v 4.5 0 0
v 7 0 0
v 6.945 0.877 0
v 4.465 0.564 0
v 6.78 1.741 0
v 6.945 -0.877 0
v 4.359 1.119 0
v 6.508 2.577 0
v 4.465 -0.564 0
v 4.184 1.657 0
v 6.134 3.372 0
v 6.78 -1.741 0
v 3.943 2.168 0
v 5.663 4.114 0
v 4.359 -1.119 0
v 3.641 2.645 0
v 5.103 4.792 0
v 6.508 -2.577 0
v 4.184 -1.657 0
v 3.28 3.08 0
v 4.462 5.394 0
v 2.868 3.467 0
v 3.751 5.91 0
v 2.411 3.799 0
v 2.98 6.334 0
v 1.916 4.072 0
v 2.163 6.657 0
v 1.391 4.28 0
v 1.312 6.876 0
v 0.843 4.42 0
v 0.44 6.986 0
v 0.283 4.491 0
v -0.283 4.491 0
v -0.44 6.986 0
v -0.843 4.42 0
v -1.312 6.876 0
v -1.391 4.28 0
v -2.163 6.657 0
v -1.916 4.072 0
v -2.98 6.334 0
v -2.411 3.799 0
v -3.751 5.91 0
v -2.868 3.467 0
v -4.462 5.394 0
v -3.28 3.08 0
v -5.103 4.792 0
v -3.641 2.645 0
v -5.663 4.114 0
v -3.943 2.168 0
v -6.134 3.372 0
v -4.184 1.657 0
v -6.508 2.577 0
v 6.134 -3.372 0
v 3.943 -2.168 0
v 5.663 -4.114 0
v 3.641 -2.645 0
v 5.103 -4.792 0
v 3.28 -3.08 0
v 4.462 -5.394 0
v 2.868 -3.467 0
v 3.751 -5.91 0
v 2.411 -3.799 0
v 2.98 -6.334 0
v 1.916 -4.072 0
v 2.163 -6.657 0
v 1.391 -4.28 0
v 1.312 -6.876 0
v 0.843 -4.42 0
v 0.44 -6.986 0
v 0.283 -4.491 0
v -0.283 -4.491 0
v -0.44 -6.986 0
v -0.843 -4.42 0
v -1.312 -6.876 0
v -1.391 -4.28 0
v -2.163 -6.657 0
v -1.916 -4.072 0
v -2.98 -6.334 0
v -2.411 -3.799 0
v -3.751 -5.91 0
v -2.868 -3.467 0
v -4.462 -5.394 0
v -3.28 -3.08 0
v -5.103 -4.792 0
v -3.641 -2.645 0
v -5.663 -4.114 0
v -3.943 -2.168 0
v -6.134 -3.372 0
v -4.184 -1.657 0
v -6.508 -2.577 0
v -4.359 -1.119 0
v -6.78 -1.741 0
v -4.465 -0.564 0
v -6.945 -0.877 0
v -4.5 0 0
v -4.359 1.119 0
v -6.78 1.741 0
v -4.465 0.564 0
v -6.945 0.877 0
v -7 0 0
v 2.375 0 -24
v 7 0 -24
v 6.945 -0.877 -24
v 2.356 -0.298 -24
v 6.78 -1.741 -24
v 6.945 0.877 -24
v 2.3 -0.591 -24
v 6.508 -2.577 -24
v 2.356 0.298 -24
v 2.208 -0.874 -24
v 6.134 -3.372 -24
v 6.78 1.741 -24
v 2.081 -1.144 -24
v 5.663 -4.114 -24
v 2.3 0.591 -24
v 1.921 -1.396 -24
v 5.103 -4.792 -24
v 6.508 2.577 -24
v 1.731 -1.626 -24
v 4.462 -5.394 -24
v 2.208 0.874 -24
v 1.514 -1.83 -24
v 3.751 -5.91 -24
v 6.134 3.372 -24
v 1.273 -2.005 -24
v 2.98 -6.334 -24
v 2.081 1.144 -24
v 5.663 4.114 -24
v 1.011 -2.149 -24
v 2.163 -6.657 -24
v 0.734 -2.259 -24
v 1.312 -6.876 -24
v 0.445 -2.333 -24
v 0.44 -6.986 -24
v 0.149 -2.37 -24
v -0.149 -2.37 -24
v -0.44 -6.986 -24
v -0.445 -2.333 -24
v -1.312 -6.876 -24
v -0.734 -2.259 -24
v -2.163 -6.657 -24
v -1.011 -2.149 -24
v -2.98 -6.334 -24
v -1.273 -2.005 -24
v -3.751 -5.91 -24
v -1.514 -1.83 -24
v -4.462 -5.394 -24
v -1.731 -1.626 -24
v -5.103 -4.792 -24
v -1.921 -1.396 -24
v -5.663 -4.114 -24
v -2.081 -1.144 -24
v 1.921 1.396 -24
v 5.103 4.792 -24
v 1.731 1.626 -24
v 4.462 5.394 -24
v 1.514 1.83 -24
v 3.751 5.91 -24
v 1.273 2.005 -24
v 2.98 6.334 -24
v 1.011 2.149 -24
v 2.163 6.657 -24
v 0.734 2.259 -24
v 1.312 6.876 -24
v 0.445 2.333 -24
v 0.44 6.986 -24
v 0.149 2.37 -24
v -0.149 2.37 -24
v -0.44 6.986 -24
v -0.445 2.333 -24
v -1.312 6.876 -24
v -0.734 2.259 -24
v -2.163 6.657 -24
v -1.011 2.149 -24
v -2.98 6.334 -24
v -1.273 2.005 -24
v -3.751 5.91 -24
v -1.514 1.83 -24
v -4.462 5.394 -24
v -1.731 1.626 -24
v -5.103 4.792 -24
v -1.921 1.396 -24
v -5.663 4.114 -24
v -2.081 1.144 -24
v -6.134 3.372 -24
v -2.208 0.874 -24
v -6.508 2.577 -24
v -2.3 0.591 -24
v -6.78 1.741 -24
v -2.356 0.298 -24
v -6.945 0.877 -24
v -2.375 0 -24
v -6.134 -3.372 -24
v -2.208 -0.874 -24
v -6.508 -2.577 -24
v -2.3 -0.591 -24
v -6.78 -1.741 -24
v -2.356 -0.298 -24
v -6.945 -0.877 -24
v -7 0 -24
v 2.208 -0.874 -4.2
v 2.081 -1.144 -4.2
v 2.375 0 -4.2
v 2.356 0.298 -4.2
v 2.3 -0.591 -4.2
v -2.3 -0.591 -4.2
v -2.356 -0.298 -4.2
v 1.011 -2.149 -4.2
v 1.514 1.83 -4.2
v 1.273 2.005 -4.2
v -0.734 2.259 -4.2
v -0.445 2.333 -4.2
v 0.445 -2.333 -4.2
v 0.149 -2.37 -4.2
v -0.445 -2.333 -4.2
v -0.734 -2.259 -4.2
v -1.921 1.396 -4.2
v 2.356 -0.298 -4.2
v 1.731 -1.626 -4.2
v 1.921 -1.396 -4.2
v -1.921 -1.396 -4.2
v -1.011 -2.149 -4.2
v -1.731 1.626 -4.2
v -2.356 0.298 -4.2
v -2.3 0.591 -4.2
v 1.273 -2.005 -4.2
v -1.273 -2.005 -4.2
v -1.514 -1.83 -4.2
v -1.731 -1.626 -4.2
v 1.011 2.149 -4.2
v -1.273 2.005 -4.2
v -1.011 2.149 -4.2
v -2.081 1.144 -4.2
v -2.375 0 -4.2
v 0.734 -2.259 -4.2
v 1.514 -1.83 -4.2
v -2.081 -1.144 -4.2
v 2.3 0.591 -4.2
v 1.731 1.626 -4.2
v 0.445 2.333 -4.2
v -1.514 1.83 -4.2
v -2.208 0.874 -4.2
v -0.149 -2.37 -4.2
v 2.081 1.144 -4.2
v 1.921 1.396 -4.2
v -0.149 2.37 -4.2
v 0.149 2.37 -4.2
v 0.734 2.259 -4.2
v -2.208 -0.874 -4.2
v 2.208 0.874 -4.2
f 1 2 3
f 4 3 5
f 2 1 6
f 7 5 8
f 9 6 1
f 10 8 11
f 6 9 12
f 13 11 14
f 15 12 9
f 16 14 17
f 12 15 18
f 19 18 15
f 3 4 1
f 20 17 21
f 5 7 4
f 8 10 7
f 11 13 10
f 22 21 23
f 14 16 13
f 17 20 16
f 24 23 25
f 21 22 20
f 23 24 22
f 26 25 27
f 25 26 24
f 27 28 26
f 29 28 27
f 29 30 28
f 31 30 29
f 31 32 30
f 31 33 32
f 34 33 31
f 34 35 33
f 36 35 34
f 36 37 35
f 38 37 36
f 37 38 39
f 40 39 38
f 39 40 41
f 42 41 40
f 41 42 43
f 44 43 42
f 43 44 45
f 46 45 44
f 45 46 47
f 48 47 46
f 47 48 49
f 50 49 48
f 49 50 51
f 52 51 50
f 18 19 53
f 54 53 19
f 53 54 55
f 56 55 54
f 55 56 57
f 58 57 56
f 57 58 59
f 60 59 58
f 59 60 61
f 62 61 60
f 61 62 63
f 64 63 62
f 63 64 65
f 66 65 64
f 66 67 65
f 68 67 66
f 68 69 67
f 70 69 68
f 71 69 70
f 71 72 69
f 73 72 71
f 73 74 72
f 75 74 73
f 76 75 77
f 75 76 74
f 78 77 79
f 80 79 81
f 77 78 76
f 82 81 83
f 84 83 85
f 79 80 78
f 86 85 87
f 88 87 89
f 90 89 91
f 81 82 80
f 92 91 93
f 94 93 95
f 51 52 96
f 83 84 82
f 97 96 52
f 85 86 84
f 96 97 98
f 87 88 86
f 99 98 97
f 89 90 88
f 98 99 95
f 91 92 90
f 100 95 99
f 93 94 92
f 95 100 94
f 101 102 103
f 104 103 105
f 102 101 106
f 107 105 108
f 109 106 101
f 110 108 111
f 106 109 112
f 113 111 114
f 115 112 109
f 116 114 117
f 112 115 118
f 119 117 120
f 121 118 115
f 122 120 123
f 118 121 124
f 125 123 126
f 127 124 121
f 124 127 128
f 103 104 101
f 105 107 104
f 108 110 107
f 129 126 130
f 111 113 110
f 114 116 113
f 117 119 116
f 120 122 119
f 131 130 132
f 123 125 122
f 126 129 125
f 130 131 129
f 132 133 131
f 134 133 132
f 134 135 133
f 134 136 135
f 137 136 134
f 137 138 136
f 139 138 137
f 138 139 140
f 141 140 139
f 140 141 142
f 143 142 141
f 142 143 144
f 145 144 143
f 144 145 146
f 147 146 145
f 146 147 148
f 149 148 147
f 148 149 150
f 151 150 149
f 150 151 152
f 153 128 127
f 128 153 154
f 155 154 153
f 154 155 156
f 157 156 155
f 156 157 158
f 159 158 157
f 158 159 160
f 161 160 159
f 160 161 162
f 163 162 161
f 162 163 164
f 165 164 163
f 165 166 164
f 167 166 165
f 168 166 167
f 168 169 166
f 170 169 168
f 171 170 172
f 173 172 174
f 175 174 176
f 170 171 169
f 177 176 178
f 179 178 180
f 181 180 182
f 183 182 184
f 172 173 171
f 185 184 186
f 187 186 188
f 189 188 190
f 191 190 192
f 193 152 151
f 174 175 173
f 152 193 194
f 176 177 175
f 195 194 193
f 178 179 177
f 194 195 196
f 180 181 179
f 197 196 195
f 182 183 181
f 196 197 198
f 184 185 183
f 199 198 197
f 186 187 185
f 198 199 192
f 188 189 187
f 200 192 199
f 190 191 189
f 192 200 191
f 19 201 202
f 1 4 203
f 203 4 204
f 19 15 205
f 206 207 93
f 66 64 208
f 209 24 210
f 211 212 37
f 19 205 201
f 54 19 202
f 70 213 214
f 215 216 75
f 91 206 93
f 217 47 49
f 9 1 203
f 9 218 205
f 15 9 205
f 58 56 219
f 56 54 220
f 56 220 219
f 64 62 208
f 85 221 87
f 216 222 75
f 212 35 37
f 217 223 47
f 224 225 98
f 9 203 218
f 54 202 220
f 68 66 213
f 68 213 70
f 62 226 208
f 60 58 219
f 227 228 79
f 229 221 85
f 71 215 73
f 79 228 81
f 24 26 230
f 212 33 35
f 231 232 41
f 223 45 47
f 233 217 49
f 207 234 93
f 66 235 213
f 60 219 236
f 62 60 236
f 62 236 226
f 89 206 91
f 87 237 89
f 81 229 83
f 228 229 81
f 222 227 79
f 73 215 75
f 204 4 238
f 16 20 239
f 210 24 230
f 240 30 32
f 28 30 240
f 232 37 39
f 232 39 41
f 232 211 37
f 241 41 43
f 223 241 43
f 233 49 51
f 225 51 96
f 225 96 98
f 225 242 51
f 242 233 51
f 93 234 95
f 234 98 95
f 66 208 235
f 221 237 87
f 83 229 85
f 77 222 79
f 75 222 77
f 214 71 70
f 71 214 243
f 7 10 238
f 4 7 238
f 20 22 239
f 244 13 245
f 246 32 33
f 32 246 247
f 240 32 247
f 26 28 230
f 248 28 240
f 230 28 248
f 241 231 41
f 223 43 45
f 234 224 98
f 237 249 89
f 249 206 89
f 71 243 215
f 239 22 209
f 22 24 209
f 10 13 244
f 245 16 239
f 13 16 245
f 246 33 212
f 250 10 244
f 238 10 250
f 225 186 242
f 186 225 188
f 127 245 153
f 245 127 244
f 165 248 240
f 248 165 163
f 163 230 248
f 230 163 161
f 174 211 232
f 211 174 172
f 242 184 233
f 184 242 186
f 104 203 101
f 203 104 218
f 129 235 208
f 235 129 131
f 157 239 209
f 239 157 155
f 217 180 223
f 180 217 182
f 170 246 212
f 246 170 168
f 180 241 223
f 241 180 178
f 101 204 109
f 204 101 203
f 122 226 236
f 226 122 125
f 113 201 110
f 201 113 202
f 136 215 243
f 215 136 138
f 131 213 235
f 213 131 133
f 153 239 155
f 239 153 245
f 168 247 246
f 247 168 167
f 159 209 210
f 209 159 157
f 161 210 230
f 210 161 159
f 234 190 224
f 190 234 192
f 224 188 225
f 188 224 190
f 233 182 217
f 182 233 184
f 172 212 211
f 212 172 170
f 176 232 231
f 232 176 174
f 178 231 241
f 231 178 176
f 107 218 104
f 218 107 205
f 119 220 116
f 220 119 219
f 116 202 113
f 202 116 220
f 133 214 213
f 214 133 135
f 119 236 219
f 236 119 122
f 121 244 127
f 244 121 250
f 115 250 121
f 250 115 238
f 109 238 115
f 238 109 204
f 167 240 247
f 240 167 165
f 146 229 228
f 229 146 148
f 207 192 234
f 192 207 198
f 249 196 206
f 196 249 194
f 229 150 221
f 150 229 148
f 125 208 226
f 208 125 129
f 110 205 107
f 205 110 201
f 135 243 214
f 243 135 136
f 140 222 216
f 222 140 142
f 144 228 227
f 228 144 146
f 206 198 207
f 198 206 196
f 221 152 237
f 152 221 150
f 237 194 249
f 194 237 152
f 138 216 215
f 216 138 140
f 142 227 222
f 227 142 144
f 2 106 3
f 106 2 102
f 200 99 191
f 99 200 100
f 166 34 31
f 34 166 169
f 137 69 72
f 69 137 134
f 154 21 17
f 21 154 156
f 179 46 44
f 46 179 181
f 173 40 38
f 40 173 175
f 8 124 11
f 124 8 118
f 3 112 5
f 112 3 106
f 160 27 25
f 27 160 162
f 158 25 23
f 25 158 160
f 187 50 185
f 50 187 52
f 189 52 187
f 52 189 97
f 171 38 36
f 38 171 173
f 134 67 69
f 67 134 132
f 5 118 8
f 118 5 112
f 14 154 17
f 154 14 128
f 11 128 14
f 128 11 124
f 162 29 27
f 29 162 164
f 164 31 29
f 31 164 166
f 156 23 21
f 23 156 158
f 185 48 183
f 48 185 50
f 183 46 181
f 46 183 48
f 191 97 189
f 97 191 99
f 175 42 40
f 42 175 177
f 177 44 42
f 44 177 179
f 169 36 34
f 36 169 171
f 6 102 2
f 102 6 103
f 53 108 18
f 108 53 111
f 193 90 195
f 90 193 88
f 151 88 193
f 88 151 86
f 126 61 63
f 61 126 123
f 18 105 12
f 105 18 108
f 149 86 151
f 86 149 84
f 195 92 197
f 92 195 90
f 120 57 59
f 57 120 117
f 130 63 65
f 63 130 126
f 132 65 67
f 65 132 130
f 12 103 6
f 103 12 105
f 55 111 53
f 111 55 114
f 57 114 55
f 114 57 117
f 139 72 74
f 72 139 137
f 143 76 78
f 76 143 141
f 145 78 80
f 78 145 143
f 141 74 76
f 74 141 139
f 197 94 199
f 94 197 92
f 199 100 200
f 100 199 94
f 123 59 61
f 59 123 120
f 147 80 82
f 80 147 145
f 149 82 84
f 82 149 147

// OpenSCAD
$fn = 50;


difference() {
	union() {
		translate(v = [0, 0, -24.0000000000]) {
			cylinder(h = 24, r = 7.0000000000);
		}
		cylinder(h = 0, r = 16.0000000000);
	}
	union() {
		translate(v = [0, 0, 0]) {
			rotate(a = [0, 0, 0]) {
				difference() {
					union() {
						#translate(v = [0, 0, -24.0000000000]) {
							cylinder(h = 24, r = 2.2500000000);
						}
						#translate(v = [0, 0, -4.2000000000]) {
							cylinder(h = 4.2000000000, r = 7.0000000000, r1 = 2.3750000000, r2 = 4.5000000000);
						}
						#translate(v = [0, 0, -24.0000000000]) {
							cylinder(h = 24, r = 2.3750000000);
						}
						#translate(v = [0, 0, -24.0000000000]) {
							cylinder(h = 24, r = 2.2500000000);
						}
					}
					union();
				}
			}
		}
	}
}
